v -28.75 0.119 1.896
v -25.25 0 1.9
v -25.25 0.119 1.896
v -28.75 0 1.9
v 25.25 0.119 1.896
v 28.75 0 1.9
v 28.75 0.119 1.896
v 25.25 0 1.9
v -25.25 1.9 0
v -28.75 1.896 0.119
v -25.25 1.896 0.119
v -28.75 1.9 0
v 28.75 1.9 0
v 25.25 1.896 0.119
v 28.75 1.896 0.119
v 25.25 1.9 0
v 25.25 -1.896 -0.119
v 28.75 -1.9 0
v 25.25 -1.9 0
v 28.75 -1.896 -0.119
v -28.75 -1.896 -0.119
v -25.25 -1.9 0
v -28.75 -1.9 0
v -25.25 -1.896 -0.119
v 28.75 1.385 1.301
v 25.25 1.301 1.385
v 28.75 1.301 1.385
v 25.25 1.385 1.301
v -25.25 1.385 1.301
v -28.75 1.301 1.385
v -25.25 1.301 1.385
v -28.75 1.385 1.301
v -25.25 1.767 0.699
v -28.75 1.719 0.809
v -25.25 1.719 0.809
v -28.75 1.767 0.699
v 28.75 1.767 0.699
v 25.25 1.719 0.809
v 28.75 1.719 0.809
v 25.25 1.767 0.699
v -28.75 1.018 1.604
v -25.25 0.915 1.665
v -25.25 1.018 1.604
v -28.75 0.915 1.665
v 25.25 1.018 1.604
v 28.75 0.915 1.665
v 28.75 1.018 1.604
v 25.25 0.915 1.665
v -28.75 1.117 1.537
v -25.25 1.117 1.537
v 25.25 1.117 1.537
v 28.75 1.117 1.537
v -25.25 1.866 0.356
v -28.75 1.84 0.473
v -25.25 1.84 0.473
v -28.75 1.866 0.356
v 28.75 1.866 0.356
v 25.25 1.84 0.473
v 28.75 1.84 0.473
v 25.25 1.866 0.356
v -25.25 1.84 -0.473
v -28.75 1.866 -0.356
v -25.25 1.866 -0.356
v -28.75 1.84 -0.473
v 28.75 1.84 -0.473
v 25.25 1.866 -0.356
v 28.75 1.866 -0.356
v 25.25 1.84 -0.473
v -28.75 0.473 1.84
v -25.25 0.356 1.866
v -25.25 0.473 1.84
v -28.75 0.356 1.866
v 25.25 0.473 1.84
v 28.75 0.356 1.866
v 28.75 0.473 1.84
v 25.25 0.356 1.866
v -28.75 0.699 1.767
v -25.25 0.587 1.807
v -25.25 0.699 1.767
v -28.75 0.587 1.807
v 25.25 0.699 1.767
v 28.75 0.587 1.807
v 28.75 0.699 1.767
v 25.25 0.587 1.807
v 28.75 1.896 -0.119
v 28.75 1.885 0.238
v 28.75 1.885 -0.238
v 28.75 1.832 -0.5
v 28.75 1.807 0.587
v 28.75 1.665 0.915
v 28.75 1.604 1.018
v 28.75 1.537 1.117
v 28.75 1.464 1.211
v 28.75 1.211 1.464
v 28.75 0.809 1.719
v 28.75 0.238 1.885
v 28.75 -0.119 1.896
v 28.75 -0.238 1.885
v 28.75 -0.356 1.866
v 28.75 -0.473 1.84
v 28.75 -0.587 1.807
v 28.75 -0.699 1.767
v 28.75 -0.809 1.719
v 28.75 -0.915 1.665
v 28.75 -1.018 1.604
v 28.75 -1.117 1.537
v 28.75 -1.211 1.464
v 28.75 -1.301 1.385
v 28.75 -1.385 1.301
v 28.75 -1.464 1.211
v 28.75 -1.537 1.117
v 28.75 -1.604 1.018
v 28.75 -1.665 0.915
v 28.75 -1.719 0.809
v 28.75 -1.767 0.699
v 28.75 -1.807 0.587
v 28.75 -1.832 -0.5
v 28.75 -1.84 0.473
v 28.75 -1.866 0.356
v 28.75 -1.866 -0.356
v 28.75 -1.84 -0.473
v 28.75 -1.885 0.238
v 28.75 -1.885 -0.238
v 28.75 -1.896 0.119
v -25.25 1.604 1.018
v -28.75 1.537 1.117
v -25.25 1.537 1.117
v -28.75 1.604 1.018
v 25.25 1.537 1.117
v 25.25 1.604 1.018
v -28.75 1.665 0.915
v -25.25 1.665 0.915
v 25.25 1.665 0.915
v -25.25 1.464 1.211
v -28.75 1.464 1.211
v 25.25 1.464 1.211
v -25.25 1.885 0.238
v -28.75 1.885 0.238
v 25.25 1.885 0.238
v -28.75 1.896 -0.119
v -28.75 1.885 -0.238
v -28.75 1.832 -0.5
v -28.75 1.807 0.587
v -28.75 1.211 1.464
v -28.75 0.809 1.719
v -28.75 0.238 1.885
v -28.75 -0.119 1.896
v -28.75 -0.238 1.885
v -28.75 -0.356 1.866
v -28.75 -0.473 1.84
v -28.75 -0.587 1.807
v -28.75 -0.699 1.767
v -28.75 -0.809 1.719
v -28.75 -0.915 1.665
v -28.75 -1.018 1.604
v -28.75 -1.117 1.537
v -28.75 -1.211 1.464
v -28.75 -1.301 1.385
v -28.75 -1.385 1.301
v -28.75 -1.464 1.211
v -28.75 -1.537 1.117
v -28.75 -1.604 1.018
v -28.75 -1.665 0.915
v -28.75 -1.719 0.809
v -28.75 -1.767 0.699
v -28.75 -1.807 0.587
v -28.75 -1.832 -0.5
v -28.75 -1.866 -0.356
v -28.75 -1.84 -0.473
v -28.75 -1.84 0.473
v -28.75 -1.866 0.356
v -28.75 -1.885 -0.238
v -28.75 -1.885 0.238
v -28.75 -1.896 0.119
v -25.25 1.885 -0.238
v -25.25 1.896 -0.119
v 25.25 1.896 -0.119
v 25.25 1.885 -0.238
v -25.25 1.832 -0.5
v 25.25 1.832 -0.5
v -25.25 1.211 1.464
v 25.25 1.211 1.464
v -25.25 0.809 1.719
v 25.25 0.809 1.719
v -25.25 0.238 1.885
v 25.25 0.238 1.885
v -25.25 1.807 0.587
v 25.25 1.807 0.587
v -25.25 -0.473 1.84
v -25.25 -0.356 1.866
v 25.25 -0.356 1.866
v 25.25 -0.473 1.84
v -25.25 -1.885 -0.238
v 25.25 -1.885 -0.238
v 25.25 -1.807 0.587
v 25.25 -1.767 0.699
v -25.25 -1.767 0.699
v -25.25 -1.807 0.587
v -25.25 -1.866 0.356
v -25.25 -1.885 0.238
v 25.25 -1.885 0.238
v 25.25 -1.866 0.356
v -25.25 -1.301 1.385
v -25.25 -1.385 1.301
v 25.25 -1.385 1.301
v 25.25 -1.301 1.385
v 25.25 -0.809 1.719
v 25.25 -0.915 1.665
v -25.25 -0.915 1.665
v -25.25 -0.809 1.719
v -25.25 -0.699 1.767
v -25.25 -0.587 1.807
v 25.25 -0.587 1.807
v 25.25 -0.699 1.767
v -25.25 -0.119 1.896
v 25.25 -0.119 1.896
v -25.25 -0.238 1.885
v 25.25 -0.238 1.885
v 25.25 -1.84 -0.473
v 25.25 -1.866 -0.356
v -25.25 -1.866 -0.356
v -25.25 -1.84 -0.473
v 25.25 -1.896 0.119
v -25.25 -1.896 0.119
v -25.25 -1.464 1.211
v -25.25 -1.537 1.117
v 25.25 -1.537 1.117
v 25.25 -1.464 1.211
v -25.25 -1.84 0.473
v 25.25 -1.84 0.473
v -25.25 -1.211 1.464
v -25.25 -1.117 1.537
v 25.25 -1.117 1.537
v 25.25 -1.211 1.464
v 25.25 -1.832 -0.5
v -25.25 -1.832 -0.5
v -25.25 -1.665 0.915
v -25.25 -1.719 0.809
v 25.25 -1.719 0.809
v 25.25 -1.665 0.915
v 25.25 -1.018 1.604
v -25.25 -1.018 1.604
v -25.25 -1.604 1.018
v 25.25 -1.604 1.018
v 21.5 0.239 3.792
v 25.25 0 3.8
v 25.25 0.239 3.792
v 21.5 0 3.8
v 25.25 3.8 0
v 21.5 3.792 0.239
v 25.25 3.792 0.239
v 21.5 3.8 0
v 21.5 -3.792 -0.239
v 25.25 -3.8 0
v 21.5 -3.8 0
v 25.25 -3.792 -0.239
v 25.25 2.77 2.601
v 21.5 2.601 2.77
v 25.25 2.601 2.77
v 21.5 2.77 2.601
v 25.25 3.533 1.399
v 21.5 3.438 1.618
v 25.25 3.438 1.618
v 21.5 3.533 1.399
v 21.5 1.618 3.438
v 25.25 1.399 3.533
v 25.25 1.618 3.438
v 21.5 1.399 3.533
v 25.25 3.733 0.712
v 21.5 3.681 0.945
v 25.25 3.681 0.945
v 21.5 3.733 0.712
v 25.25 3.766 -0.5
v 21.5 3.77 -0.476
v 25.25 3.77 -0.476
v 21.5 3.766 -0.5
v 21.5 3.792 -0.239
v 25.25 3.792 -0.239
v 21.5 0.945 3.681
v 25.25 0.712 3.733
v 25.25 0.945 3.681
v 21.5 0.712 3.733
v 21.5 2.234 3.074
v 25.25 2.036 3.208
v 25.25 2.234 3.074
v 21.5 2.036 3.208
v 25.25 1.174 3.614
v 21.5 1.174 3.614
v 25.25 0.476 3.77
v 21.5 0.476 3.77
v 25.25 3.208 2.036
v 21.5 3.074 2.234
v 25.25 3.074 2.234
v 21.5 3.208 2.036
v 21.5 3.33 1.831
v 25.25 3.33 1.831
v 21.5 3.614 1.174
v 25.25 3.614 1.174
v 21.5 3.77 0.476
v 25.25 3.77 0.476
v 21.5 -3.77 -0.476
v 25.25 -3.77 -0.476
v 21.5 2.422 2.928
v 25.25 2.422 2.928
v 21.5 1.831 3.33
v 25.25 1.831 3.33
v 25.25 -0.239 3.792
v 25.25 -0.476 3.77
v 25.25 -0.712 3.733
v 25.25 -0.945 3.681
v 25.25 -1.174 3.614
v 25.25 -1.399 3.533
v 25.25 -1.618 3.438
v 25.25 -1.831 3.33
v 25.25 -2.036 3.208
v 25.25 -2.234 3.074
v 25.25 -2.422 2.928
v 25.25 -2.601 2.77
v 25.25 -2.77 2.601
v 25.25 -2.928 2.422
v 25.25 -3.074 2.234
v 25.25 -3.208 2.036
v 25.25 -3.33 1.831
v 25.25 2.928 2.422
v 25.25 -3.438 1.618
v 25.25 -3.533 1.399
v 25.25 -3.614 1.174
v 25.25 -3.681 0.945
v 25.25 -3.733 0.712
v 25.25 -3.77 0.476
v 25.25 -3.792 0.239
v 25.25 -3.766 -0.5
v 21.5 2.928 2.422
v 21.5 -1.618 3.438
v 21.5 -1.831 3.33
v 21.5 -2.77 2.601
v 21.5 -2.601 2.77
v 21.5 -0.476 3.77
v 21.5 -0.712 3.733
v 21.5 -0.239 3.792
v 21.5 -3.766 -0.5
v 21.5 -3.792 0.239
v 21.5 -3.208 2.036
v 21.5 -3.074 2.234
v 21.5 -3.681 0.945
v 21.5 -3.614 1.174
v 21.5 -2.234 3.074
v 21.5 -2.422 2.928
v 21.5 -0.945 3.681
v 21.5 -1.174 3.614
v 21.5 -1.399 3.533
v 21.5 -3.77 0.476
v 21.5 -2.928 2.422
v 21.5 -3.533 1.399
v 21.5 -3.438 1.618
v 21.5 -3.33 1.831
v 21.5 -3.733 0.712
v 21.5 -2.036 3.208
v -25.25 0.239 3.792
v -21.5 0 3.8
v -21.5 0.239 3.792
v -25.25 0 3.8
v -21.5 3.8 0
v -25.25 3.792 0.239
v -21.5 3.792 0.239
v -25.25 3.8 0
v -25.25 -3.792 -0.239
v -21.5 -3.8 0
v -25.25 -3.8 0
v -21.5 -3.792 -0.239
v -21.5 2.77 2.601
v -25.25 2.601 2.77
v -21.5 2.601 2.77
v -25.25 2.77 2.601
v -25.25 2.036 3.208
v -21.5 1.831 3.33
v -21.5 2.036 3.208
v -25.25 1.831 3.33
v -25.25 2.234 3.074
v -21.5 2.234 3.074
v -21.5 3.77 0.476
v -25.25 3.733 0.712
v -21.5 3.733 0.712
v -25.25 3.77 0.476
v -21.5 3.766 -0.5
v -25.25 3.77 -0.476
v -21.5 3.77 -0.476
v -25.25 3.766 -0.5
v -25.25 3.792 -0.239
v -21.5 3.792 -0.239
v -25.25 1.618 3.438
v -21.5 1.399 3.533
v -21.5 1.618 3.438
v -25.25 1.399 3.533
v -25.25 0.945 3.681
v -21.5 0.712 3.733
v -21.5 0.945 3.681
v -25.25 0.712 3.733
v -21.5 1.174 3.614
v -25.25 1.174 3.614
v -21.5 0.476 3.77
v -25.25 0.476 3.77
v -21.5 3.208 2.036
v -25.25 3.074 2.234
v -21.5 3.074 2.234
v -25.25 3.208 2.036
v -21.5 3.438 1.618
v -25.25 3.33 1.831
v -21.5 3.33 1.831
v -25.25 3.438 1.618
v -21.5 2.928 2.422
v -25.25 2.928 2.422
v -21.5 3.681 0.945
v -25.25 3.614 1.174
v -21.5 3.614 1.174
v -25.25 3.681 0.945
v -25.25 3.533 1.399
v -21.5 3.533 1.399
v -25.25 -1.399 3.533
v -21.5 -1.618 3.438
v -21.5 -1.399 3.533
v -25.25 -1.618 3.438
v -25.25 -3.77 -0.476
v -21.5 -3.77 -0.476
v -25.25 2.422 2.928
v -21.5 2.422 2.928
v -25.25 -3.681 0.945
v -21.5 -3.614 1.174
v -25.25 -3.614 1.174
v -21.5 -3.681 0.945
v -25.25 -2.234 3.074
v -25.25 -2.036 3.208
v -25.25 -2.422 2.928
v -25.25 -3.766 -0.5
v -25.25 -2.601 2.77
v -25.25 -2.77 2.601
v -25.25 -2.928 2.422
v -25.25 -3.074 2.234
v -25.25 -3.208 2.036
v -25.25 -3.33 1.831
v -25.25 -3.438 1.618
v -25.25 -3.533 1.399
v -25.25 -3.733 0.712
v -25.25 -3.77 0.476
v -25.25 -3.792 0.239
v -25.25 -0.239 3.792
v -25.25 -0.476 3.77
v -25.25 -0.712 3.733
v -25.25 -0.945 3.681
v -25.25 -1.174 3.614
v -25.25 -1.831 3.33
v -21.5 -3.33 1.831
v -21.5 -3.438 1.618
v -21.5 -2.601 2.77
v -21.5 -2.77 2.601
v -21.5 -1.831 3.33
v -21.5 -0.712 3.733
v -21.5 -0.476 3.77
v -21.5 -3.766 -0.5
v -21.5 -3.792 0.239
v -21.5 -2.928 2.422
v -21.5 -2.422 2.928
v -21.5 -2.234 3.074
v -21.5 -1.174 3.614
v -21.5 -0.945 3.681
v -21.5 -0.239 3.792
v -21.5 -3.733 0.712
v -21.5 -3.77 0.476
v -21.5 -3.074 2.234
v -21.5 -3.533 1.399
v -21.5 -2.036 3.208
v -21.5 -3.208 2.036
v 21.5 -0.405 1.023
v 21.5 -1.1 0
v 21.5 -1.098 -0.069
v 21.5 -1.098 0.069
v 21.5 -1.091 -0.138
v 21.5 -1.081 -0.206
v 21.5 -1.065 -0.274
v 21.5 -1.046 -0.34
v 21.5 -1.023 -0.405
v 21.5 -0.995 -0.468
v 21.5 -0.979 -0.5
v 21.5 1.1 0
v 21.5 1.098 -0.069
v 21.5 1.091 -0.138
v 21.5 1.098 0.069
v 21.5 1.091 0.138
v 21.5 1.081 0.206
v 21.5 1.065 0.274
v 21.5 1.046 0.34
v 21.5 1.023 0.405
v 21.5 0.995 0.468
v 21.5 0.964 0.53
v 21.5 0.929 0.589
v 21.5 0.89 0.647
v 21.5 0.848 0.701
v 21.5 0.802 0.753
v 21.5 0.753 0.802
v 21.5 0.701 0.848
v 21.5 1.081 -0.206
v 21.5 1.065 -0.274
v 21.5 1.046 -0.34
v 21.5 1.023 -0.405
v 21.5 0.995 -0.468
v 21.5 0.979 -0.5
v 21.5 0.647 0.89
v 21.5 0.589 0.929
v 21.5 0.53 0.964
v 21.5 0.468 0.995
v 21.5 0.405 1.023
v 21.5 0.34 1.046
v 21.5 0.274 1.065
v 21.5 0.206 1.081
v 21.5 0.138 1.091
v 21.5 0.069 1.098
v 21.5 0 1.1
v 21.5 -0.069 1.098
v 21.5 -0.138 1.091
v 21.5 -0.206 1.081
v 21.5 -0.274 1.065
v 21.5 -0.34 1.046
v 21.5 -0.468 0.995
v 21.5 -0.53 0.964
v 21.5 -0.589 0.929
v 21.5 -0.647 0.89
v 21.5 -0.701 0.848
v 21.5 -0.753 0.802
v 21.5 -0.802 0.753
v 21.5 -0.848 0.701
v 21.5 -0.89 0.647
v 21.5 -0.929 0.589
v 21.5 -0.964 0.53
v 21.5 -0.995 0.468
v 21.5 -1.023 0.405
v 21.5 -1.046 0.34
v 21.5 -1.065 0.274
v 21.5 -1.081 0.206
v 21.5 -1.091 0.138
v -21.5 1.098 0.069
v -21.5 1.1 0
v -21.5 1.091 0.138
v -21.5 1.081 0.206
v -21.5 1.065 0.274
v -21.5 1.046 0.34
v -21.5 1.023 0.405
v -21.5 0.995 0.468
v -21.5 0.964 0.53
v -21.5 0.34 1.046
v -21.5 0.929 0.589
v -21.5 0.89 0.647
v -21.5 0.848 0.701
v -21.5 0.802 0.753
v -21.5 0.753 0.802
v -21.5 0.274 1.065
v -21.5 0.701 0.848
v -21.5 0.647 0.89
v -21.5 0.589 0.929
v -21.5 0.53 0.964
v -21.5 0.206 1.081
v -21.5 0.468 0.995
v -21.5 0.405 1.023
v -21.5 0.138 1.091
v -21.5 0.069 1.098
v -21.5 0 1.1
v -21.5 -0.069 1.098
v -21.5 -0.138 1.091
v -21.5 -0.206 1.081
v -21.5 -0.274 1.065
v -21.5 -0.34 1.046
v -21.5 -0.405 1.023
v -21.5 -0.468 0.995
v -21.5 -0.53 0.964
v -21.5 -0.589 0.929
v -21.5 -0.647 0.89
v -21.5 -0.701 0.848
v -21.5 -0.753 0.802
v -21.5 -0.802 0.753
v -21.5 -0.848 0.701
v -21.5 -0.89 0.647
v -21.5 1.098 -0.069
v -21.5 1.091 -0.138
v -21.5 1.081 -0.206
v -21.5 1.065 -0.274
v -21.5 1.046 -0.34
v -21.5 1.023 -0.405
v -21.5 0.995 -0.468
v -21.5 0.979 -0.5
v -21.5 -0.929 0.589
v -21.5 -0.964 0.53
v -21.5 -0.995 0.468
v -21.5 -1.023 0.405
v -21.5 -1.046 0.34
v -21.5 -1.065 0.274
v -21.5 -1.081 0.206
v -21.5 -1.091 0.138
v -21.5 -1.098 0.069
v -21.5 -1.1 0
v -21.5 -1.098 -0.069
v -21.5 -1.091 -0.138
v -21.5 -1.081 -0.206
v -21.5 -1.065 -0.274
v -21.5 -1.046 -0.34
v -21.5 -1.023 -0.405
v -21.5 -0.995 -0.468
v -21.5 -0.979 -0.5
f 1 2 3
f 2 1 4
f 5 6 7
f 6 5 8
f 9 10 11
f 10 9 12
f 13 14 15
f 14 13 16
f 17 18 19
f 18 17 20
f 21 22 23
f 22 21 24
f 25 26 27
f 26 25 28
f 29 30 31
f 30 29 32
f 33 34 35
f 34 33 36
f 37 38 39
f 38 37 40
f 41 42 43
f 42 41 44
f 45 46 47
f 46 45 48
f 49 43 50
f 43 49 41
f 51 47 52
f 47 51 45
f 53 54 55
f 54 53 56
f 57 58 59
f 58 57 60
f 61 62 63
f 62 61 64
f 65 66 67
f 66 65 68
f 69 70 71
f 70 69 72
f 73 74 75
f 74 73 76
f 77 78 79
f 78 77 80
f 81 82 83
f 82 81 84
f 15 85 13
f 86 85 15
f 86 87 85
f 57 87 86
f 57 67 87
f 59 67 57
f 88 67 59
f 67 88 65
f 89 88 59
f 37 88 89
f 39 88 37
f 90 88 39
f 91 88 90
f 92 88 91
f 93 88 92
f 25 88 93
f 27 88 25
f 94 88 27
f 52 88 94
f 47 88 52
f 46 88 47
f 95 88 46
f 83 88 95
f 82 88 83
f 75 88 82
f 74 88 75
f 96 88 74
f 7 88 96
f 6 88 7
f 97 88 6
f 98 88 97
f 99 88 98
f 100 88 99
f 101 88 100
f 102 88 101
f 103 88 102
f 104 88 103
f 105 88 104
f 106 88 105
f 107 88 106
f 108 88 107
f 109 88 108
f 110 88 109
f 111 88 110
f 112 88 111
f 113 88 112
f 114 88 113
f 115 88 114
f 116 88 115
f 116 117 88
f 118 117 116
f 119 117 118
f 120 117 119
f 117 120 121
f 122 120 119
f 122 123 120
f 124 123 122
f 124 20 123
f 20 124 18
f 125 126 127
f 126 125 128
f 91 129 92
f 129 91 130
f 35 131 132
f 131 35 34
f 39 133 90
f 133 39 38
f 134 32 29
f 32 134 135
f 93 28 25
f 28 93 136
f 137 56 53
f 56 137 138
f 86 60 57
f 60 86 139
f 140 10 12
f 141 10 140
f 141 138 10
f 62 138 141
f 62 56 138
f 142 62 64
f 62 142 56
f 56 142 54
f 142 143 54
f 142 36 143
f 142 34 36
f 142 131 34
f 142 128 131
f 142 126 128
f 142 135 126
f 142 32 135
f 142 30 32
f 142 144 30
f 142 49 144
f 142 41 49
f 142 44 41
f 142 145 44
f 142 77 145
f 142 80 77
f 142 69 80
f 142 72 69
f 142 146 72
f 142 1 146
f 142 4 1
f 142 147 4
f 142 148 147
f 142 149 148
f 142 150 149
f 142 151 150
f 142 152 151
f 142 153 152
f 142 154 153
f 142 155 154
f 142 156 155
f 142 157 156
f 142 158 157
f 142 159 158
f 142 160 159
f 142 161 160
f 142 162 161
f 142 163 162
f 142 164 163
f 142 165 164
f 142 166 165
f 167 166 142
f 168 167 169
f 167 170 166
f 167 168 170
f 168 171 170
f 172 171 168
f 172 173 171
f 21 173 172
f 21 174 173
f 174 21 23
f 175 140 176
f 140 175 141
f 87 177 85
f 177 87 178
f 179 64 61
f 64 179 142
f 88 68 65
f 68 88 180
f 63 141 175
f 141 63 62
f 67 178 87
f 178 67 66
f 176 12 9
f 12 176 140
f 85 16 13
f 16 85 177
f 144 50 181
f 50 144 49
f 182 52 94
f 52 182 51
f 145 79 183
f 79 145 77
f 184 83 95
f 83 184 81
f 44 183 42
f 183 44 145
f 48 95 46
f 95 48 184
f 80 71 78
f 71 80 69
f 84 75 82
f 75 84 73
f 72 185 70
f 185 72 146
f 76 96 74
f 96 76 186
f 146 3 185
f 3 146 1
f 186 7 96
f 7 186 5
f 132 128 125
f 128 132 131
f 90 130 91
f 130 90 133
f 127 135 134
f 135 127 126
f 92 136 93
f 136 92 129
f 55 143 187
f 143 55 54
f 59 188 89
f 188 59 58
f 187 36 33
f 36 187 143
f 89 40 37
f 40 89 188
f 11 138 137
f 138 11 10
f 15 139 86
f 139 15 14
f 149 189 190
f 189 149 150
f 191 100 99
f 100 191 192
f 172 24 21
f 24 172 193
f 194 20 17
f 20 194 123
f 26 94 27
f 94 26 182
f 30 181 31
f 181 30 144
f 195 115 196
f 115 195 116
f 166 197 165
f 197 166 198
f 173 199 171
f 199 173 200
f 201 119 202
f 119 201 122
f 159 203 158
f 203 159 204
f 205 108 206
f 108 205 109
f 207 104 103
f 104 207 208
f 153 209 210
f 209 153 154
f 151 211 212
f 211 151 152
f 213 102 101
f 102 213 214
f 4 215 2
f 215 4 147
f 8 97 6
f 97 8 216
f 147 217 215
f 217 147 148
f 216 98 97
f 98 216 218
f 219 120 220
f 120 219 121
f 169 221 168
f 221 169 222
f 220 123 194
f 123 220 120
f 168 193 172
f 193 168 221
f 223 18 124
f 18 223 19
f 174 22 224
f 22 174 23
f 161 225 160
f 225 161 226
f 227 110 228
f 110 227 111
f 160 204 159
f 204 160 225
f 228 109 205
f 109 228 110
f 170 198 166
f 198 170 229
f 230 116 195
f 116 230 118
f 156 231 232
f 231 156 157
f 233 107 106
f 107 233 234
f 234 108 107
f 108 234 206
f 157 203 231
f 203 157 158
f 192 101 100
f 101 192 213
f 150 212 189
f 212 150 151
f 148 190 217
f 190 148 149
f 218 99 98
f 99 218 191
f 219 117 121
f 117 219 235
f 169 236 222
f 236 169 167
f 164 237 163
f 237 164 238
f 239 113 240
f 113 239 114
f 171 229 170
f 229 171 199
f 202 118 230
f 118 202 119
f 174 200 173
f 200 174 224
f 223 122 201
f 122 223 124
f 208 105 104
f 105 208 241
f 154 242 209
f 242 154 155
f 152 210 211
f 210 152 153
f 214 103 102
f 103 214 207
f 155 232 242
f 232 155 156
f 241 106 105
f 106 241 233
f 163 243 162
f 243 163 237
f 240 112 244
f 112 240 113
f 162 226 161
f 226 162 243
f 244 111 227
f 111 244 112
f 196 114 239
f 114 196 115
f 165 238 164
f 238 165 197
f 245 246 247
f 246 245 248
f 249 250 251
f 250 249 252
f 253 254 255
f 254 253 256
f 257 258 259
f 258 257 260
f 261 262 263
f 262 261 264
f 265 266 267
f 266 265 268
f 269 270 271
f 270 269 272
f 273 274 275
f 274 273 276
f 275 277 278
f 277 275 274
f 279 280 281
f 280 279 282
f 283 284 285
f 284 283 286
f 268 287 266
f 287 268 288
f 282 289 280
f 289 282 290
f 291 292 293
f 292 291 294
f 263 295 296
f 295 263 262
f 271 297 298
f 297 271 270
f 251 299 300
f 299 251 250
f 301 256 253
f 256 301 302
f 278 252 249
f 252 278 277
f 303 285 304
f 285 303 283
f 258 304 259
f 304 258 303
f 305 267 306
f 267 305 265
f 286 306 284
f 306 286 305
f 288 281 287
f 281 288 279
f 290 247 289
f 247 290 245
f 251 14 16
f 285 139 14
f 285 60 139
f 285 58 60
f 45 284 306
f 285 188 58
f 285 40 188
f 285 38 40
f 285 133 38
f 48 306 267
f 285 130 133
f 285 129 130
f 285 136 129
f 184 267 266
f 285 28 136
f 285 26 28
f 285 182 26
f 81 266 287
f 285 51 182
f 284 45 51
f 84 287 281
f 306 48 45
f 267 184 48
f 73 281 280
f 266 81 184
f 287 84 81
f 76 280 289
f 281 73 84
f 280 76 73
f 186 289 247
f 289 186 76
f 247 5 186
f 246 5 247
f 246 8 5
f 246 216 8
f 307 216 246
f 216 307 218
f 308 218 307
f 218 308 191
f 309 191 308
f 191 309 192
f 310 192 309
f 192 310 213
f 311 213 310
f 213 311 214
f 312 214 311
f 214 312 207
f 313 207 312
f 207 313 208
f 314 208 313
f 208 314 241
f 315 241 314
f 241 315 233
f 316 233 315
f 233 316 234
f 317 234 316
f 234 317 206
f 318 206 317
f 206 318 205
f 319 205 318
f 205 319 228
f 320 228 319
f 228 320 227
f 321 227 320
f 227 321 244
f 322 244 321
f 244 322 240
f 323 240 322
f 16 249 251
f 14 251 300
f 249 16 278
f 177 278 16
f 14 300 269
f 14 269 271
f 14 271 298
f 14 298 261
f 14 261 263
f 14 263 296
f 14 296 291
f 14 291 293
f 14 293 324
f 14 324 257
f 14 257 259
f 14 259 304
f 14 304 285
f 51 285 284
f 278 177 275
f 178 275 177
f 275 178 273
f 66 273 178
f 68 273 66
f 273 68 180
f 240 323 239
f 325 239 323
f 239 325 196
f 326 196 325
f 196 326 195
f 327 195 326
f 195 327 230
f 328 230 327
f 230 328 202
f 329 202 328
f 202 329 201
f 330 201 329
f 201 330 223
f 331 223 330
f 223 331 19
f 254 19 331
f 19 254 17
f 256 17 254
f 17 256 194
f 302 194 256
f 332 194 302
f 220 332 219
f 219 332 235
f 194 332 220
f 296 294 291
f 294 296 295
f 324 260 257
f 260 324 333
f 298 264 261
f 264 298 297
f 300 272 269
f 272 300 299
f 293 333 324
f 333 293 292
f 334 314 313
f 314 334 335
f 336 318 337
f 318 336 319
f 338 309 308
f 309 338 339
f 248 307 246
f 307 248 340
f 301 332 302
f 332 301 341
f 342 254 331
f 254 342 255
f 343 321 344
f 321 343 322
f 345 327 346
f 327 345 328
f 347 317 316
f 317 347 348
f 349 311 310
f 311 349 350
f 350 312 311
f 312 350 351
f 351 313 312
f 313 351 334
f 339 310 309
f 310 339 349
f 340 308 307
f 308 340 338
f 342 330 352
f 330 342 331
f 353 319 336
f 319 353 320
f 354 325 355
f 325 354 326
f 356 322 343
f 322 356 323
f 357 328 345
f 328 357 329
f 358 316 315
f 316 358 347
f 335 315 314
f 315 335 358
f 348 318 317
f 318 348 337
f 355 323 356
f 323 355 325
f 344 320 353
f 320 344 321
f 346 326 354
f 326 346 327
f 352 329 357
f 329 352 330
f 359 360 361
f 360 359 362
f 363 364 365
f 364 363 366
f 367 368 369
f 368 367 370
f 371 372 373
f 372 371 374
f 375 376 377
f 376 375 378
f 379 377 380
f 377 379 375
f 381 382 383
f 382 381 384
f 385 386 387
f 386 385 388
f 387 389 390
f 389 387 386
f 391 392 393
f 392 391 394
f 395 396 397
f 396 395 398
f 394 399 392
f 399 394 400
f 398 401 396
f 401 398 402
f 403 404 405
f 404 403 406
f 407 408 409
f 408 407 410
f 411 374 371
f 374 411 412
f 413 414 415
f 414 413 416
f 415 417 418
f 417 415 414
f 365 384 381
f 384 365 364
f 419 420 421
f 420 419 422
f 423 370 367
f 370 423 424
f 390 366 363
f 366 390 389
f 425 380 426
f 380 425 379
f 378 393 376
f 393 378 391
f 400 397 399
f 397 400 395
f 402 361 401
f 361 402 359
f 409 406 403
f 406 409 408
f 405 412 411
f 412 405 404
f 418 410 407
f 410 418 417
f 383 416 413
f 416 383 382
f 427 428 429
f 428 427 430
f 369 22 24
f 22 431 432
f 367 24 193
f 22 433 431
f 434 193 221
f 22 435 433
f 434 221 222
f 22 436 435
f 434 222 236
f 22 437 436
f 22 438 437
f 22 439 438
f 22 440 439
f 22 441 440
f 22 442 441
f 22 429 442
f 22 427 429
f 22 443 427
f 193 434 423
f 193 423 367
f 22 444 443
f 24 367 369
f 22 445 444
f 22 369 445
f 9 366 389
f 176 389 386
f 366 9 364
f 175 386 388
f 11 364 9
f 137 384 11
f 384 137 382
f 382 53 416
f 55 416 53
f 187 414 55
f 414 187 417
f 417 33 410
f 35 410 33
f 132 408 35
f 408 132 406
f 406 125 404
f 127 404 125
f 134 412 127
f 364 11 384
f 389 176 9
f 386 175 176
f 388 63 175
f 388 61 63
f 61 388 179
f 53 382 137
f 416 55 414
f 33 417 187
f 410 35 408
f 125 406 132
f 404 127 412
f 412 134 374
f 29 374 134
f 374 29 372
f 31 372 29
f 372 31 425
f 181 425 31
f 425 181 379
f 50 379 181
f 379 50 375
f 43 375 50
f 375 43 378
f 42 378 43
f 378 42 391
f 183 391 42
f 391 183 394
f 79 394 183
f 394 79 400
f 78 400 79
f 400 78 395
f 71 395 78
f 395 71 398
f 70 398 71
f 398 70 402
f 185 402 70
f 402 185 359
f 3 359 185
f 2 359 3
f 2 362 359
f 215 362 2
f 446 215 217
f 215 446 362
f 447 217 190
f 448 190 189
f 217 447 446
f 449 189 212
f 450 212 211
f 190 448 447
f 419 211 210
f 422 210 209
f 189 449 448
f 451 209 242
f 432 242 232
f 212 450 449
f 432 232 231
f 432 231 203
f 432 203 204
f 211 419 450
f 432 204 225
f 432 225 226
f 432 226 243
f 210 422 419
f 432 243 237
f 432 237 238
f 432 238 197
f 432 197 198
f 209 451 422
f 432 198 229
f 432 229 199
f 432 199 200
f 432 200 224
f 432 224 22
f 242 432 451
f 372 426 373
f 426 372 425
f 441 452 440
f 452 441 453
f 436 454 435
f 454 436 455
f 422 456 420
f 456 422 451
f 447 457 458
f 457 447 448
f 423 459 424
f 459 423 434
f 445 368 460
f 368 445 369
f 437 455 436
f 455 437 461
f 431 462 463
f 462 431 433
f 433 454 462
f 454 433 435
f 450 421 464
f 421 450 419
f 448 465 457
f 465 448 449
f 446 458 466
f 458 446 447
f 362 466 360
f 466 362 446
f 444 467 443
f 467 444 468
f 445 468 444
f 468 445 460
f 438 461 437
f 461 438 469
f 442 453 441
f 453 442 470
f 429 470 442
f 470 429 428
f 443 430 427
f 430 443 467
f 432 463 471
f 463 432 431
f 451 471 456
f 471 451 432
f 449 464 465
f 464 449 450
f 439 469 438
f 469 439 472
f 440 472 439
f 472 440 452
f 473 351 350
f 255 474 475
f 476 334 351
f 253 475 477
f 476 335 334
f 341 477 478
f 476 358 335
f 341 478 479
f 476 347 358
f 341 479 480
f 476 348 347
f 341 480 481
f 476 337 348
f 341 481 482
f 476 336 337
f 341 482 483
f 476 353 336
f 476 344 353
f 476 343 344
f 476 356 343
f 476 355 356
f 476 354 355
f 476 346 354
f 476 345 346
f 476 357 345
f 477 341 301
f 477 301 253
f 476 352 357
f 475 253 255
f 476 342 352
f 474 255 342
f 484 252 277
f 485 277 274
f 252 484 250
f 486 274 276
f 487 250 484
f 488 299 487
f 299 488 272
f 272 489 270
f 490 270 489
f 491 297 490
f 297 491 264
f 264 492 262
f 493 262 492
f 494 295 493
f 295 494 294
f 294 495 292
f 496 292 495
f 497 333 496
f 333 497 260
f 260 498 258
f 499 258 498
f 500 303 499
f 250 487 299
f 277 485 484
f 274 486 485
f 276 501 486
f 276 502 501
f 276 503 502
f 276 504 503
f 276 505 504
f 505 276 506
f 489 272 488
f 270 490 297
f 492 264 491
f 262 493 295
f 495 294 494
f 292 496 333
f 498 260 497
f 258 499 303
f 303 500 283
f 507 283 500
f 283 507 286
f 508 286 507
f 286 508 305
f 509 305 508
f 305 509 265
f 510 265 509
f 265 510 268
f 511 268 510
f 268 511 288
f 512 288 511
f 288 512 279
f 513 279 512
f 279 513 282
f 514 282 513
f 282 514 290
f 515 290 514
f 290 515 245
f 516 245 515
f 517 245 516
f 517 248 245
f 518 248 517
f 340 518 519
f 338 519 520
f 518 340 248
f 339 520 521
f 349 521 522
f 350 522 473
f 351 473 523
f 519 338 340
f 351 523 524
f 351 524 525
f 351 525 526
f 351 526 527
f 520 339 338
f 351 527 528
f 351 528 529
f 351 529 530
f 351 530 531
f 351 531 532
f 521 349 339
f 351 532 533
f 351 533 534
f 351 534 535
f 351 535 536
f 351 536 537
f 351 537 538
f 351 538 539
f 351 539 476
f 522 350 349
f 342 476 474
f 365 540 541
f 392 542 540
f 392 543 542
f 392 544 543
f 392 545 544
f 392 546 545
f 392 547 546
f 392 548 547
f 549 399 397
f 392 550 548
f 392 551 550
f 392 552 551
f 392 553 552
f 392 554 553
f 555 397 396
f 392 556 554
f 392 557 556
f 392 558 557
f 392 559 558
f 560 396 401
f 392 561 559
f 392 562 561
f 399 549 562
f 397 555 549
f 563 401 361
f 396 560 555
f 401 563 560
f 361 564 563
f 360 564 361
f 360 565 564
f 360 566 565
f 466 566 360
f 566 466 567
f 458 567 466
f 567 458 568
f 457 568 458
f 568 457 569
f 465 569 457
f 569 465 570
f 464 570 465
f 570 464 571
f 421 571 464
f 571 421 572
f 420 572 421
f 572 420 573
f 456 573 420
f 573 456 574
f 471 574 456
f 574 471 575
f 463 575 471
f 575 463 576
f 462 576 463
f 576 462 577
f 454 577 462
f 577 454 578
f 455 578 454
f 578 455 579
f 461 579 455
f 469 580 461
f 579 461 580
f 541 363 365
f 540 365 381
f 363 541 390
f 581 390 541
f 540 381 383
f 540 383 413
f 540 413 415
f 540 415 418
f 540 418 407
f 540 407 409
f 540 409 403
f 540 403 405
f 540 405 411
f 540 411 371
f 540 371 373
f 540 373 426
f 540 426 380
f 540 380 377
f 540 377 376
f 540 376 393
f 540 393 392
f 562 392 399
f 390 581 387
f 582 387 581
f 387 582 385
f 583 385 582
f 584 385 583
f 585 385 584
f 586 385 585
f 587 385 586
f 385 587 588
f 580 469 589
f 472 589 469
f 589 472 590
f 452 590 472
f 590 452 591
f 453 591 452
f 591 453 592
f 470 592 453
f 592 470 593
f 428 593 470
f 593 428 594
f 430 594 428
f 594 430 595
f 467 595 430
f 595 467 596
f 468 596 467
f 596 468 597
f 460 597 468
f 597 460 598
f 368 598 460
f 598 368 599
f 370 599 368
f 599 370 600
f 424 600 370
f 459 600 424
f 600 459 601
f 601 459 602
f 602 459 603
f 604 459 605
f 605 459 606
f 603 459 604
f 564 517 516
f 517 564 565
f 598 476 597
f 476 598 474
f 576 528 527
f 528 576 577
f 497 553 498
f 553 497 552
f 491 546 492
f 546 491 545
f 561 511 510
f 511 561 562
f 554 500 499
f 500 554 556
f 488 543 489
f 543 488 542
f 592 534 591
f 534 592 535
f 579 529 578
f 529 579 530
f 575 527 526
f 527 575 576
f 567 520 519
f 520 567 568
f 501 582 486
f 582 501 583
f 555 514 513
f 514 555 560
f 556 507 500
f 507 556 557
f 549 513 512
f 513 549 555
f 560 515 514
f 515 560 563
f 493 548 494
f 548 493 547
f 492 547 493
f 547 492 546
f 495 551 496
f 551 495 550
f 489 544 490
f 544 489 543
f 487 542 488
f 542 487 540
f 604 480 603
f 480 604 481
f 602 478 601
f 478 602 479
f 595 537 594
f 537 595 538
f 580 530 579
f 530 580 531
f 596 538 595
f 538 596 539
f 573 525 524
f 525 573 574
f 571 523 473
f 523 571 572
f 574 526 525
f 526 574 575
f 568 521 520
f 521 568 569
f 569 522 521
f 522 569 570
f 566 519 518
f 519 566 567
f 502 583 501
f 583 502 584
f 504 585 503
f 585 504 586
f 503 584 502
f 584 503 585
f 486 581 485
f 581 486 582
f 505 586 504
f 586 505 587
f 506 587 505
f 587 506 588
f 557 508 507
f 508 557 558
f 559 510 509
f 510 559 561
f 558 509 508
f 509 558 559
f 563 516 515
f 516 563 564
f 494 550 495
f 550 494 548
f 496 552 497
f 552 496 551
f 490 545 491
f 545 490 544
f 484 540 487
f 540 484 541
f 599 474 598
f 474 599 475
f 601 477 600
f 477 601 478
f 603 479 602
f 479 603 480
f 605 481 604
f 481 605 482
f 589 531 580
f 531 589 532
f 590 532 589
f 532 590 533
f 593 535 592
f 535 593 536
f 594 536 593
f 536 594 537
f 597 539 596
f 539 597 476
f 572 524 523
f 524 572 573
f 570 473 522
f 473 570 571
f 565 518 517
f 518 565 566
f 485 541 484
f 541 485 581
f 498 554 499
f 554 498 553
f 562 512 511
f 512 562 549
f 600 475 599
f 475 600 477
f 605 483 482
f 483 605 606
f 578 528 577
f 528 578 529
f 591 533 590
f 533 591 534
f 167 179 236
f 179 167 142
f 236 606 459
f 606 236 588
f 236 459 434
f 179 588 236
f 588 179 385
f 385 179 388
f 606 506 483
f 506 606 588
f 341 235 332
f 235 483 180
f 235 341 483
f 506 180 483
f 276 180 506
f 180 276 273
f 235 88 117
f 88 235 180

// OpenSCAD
difference(){
    union(){
        difference(){
            basicpin();
                //remove center
             rotate([0,90,0])
             cylinder(h = 43, r1 = 4, r2 = 4, center = true, $fn=100);
                


        }
        //main shaft
        rotate([0,90,0])
        cylinder(h = 50, r1 = 1.1, r2 = 1.1, center = true, $fn=100);

    }
    //flat bottom
    translate([0,0,-5.5])
    rotate([0,90,0])
    cube([10,12,60],center=true);    
}



//stoppers
module stop(){
    cylinder(h = 4, r1 = 3.8, r2 = 3.8, center = true, $fn=100);
}

module basicpin(){
 rotate([0,90,0])
    difference(){
        union(){
            
            //main key shaft
            cylinder(h = 57.5, r1 = 1.9, r2 = 1.9, center = true, $fn=100);
            //cylinder(h = 52, r1 = 2.3, r2 = 2.3, center = true, $fn=100);

            //stoppers
            translate([0,0,23.25])
            stop();
            //this was 23
            translate([0,0,-23.25])
            stop();
        }

        

    }   
}
